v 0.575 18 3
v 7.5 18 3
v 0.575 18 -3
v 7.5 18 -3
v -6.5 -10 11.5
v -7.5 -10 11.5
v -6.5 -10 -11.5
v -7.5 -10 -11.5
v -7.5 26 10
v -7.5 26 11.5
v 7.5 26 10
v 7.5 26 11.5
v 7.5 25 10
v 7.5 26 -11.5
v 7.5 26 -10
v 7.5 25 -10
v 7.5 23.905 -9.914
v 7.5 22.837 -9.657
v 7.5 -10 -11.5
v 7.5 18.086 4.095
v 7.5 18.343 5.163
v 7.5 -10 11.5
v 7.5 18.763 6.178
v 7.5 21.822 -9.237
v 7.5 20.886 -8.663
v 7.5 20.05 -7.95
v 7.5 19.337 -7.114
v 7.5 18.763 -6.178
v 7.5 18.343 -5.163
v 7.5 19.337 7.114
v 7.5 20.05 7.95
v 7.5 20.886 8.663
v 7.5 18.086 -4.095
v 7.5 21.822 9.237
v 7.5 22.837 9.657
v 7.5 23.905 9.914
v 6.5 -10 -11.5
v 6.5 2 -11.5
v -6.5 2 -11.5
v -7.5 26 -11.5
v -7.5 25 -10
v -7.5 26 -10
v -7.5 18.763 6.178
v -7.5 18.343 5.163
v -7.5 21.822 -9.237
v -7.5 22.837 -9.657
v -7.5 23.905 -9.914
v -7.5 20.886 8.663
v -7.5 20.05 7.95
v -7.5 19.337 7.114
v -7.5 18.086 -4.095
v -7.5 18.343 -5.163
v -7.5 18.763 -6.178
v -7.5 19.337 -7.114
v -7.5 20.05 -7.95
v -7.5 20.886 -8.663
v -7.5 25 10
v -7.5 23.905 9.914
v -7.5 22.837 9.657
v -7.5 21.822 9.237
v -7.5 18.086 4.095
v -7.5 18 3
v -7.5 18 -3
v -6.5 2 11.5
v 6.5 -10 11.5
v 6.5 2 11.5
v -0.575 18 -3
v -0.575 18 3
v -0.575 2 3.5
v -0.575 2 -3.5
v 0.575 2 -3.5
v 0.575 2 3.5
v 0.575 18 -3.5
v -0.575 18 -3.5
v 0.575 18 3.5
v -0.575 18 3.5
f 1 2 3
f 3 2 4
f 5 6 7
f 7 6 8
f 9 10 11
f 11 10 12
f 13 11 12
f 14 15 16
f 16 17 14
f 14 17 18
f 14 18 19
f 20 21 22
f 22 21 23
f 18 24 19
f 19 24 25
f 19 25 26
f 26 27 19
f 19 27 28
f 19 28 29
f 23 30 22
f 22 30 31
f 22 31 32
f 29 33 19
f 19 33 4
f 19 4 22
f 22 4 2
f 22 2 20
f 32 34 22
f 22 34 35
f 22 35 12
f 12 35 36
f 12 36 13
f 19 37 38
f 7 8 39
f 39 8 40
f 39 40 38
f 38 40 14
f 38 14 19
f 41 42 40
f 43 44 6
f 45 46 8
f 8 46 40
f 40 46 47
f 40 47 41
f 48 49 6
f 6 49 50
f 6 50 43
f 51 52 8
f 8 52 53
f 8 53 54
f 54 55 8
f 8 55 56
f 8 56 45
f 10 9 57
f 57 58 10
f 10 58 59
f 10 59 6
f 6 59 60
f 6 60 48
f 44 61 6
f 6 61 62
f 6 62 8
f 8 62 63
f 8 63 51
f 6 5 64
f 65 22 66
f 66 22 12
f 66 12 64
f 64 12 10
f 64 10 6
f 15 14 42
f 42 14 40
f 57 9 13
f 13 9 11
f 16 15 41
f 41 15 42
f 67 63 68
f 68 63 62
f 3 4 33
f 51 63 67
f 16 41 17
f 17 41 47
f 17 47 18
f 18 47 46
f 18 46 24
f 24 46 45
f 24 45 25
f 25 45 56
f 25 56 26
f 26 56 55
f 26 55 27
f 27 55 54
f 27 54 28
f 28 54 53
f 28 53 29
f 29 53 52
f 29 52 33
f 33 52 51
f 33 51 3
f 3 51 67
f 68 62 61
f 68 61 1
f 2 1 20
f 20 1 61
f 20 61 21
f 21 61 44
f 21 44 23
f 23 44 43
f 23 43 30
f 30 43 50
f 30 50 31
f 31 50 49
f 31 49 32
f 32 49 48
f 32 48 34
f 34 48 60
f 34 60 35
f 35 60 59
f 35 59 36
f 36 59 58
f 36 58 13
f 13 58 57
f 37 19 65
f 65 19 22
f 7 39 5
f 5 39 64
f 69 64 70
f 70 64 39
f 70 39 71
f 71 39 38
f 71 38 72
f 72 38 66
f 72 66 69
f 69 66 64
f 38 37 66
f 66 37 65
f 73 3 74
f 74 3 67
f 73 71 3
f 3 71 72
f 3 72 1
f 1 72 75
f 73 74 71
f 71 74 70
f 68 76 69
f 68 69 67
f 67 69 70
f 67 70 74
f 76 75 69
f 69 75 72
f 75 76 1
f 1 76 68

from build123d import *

# Parameters (mm, degrees)
SKETCH1_W           = 15
SKETCH1_H           = 23
BOSS_EXTRUDE1_DEPTH = 26
SKETCH4_W           = 20
SKETCH4_H           = 8
CUT_EXTRUDE2_DEPTH  = 33.144206321
FILLET1_R           = 7
SKETCH5_W           = 15
SKETCH5_H           = 23
BOSS_EXTRUDE2_DEPTH = 10
SKETCH7_W           = 13
SKETCH7_H           = 12
CUT_EXTRUDE3_DEPTH  = 36.514081714
SKETCH11_W          = 1.15
SKETCH11_H          = 7
CUT_EXTRUDE4_DEPTH  = 16


with BuildPart() as part:
    # Sketch1 → Boss-Extrude1 (new body)
    with BuildSketch(Plane(origin=(0, 0, 0), x_dir=(1, 0, 0), z_dir=(0, 1, 0))):
        Rectangle(SKETCH1_W, SKETCH1_H)
    extrude(amount=BOSS_EXTRUDE1_DEPTH)

    # Sketch4 → Cut-Extrude2 (cut, through all)
    with BuildSketch(Plane(origin=(7.5, 0, 0), x_dir=(0, 0, -1), z_dir=(1, 0, 0))):
        with Locations((0, 22)):
            Rectangle(SKETCH4_W, SKETCH4_H)
    extrude(amount=-CUT_EXTRUDE2_DEPTH, mode=Mode.SUBTRACT)

    # Fillet1
    fillet1_edges = [part.edges().sort_by_distance(p)[0] for p in [
        (0, 18, 10),
        (0, 18, -10),
    ]]
    fillet(fillet1_edges, radius=FILLET1_R)

    # Sketch5 → Boss-Extrude2 (add)
    with BuildSketch(Plane.XZ):
        Rectangle(SKETCH5_W, SKETCH5_H)
    extrude(amount=BOSS_EXTRUDE2_DEPTH)

    # Sketch7 → Cut-Extrude3 (cut, through all)
    with BuildSketch(Plane.XY.offset(11.5)):
        with Locations((0, -4)):
            Rectangle(SKETCH7_W, SKETCH7_H)
    extrude(amount=-CUT_EXTRUDE3_DEPTH, mode=Mode.SUBTRACT)

    # Sketch11 → Cut-Extrude4 (cut)
    with BuildSketch(Plane.XZ.offset(-2)):
        Rectangle(SKETCH11_W, SKETCH11_H)
    extrude(amount=-CUT_EXTRUDE4_DEPTH, mode=Mode.SUBTRACT)


solid = part.part
